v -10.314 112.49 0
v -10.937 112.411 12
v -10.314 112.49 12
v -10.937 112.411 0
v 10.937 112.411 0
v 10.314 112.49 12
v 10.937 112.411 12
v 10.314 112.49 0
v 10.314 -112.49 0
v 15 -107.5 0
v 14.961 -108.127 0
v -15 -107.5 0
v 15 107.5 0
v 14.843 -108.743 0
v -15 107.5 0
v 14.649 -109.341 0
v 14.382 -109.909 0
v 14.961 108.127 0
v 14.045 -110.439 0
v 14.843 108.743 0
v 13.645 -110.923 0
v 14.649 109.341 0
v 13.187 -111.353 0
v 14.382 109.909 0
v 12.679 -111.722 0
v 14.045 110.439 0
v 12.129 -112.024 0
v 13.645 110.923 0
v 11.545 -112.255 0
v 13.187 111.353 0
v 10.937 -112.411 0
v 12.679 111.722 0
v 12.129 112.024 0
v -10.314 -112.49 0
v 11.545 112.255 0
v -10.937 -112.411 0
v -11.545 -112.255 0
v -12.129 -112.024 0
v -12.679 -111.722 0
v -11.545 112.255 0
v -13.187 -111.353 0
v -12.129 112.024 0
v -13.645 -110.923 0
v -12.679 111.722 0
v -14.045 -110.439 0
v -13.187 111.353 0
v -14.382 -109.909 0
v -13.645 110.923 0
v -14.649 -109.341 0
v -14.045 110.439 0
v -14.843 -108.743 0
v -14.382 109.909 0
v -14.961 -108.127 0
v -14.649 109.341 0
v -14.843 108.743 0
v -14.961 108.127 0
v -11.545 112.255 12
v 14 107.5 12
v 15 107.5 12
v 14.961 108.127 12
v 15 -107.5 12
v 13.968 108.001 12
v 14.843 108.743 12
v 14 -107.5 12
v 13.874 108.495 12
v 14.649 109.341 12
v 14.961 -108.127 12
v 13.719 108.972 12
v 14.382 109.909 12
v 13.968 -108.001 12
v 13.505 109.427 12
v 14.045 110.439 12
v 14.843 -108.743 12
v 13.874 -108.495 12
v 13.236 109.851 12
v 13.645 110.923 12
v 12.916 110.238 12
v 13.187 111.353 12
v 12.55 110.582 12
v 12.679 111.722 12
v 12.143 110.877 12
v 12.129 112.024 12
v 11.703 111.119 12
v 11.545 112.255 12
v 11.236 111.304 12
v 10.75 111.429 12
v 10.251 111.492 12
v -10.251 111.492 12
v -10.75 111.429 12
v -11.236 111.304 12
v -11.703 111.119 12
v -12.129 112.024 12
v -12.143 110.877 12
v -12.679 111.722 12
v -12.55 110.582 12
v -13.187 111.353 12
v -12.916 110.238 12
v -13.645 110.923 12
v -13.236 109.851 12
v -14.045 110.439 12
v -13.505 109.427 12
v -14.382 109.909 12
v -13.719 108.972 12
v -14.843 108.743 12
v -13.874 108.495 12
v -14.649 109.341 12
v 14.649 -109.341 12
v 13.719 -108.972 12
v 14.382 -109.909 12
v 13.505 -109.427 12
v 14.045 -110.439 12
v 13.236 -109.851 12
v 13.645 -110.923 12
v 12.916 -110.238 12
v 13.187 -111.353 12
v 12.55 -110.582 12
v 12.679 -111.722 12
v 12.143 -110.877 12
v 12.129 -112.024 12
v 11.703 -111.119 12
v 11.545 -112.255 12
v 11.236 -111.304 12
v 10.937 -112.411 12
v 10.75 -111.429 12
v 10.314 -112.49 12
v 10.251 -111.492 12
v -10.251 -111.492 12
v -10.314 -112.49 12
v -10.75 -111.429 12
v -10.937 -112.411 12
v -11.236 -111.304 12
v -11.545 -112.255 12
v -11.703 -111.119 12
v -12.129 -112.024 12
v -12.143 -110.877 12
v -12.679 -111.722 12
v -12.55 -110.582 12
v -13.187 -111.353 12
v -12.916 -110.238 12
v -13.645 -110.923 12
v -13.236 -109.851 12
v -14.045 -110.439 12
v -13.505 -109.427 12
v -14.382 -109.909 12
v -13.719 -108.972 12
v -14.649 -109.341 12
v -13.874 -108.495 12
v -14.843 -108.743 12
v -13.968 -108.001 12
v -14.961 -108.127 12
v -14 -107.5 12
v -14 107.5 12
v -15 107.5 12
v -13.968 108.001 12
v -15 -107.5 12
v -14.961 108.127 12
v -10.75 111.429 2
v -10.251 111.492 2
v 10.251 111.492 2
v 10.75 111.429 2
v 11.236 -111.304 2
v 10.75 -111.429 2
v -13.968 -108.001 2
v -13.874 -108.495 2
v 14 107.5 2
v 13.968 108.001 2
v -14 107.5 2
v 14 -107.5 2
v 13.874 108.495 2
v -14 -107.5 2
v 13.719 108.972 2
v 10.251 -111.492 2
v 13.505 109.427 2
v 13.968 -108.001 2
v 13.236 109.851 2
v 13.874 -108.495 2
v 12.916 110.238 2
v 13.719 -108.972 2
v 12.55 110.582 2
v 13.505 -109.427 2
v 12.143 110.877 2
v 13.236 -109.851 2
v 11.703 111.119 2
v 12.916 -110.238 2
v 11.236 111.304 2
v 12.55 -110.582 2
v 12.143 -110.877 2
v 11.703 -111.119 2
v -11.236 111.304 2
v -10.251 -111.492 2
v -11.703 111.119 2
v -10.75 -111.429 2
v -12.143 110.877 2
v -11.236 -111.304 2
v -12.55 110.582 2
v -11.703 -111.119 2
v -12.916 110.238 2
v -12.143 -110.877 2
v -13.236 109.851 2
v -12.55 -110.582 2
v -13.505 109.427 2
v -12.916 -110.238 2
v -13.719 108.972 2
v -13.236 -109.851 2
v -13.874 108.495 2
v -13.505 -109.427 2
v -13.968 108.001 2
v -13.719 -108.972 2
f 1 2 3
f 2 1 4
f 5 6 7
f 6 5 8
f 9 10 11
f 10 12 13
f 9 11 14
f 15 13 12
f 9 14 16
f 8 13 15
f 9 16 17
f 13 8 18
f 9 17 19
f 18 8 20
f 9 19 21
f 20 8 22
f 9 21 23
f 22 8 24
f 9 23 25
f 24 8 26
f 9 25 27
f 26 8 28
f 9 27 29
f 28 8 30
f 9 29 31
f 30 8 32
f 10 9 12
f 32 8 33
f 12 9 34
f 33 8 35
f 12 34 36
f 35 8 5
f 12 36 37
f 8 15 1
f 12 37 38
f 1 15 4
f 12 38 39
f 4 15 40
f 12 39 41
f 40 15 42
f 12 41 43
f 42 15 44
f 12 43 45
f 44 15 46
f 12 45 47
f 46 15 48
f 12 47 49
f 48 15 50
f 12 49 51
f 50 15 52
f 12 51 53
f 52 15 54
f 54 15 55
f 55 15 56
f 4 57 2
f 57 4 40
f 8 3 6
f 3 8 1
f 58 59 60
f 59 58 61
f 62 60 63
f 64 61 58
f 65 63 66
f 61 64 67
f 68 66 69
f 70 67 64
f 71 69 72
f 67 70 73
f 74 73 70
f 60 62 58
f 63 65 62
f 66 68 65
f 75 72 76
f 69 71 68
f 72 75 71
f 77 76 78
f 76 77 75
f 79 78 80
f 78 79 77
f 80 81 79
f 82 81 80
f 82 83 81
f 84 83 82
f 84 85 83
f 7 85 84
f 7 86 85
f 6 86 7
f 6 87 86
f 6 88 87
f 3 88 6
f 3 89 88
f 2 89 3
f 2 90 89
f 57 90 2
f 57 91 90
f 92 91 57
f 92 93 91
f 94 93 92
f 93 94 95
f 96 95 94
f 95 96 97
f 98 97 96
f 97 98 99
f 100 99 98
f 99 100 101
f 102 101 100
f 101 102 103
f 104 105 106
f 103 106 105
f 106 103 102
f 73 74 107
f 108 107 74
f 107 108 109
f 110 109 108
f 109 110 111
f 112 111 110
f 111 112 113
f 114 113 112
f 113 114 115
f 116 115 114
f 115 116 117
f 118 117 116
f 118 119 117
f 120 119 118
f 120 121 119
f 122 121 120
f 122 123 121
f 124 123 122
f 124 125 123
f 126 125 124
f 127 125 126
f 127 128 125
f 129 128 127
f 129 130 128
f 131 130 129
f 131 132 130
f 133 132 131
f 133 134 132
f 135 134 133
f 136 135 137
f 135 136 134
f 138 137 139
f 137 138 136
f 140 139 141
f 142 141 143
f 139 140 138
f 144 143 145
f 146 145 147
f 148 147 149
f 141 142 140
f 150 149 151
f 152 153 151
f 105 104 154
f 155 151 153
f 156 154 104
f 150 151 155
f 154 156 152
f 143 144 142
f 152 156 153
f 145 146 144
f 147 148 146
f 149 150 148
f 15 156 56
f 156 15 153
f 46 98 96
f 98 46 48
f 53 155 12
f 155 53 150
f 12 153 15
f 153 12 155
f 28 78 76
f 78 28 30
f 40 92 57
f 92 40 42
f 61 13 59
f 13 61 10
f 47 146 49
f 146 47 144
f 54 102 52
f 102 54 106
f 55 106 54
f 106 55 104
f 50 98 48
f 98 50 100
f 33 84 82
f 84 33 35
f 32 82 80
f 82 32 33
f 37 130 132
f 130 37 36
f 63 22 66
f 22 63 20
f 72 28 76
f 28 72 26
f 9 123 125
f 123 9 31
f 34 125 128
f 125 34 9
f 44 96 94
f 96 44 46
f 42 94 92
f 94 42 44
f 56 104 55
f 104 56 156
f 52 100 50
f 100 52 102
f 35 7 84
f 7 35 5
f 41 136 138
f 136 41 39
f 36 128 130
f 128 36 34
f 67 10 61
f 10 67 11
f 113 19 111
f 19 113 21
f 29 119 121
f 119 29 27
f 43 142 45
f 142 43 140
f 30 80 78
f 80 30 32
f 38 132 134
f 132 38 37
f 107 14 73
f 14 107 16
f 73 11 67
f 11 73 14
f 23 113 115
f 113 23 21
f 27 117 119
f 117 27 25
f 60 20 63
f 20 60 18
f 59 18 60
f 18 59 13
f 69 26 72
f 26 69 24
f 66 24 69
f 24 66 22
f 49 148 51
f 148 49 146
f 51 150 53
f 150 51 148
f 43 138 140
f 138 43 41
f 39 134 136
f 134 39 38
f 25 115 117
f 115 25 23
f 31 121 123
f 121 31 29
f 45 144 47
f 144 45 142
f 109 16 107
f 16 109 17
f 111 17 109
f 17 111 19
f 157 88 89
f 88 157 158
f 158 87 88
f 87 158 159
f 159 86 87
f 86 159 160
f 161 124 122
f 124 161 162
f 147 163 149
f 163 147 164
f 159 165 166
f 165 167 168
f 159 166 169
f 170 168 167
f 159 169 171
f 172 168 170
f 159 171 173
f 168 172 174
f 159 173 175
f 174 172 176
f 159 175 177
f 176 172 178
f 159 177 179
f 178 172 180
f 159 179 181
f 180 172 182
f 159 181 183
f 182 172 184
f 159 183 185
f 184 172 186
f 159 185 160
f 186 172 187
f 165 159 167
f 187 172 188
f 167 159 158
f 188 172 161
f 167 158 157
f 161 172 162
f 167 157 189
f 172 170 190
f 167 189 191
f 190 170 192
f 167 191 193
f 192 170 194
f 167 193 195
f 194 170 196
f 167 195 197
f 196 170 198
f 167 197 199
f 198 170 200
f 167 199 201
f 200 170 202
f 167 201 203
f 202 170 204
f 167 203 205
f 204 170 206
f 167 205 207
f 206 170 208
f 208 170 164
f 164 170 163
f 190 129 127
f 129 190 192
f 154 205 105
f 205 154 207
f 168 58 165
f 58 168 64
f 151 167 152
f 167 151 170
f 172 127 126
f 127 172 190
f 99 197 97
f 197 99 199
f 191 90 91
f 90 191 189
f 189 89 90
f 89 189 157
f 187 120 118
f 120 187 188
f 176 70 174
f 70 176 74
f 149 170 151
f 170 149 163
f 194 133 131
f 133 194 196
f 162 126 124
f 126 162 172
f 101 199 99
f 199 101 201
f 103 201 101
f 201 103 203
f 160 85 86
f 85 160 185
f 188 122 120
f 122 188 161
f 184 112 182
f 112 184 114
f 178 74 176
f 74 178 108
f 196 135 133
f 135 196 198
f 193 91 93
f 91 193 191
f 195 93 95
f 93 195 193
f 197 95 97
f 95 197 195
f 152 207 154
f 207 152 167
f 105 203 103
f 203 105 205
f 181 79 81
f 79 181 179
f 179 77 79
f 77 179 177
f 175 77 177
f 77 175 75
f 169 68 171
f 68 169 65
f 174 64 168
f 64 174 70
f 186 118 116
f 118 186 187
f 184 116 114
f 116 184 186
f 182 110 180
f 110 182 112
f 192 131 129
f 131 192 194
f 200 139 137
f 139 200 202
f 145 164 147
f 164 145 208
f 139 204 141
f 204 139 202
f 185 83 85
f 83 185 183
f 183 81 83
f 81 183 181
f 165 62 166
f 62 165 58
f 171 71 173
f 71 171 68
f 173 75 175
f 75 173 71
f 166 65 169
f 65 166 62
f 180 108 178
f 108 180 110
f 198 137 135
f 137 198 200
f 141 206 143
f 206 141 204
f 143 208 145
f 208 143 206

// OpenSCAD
$fn = 50;


difference() {
	union() {
		hull() {
			translate(v = [-10.0000000000, 107.5000000000, 0]) {
				cylinder(h = 12, r = 5);
			}
			translate(v = [10.0000000000, 107.5000000000, 0]) {
				cylinder(h = 12, r = 5);
			}
			translate(v = [-10.0000000000, -107.5000000000, 0]) {
				cylinder(h = 12, r = 5);
			}
			translate(v = [10.0000000000, -107.5000000000, 0]) {
				cylinder(h = 12, r = 5);
			}
		}
	}
	union() {
		translate(v = [0, 0, 2]) {
			hull() {
				translate(v = [-10.0000000000, 107.5000000000, 0]) {
					cylinder(h = 10, r = 4);
				}
				translate(v = [10.0000000000, 107.5000000000, 0]) {
					cylinder(h = 10, r = 4);
				}
				translate(v = [-10.0000000000, -107.5000000000, 0]) {
					cylinder(h = 10, r = 4);
				}
				translate(v = [10.0000000000, -107.5000000000, 0]) {
					cylinder(h = 10, r = 4);
				}
			}
		}
	}
}
